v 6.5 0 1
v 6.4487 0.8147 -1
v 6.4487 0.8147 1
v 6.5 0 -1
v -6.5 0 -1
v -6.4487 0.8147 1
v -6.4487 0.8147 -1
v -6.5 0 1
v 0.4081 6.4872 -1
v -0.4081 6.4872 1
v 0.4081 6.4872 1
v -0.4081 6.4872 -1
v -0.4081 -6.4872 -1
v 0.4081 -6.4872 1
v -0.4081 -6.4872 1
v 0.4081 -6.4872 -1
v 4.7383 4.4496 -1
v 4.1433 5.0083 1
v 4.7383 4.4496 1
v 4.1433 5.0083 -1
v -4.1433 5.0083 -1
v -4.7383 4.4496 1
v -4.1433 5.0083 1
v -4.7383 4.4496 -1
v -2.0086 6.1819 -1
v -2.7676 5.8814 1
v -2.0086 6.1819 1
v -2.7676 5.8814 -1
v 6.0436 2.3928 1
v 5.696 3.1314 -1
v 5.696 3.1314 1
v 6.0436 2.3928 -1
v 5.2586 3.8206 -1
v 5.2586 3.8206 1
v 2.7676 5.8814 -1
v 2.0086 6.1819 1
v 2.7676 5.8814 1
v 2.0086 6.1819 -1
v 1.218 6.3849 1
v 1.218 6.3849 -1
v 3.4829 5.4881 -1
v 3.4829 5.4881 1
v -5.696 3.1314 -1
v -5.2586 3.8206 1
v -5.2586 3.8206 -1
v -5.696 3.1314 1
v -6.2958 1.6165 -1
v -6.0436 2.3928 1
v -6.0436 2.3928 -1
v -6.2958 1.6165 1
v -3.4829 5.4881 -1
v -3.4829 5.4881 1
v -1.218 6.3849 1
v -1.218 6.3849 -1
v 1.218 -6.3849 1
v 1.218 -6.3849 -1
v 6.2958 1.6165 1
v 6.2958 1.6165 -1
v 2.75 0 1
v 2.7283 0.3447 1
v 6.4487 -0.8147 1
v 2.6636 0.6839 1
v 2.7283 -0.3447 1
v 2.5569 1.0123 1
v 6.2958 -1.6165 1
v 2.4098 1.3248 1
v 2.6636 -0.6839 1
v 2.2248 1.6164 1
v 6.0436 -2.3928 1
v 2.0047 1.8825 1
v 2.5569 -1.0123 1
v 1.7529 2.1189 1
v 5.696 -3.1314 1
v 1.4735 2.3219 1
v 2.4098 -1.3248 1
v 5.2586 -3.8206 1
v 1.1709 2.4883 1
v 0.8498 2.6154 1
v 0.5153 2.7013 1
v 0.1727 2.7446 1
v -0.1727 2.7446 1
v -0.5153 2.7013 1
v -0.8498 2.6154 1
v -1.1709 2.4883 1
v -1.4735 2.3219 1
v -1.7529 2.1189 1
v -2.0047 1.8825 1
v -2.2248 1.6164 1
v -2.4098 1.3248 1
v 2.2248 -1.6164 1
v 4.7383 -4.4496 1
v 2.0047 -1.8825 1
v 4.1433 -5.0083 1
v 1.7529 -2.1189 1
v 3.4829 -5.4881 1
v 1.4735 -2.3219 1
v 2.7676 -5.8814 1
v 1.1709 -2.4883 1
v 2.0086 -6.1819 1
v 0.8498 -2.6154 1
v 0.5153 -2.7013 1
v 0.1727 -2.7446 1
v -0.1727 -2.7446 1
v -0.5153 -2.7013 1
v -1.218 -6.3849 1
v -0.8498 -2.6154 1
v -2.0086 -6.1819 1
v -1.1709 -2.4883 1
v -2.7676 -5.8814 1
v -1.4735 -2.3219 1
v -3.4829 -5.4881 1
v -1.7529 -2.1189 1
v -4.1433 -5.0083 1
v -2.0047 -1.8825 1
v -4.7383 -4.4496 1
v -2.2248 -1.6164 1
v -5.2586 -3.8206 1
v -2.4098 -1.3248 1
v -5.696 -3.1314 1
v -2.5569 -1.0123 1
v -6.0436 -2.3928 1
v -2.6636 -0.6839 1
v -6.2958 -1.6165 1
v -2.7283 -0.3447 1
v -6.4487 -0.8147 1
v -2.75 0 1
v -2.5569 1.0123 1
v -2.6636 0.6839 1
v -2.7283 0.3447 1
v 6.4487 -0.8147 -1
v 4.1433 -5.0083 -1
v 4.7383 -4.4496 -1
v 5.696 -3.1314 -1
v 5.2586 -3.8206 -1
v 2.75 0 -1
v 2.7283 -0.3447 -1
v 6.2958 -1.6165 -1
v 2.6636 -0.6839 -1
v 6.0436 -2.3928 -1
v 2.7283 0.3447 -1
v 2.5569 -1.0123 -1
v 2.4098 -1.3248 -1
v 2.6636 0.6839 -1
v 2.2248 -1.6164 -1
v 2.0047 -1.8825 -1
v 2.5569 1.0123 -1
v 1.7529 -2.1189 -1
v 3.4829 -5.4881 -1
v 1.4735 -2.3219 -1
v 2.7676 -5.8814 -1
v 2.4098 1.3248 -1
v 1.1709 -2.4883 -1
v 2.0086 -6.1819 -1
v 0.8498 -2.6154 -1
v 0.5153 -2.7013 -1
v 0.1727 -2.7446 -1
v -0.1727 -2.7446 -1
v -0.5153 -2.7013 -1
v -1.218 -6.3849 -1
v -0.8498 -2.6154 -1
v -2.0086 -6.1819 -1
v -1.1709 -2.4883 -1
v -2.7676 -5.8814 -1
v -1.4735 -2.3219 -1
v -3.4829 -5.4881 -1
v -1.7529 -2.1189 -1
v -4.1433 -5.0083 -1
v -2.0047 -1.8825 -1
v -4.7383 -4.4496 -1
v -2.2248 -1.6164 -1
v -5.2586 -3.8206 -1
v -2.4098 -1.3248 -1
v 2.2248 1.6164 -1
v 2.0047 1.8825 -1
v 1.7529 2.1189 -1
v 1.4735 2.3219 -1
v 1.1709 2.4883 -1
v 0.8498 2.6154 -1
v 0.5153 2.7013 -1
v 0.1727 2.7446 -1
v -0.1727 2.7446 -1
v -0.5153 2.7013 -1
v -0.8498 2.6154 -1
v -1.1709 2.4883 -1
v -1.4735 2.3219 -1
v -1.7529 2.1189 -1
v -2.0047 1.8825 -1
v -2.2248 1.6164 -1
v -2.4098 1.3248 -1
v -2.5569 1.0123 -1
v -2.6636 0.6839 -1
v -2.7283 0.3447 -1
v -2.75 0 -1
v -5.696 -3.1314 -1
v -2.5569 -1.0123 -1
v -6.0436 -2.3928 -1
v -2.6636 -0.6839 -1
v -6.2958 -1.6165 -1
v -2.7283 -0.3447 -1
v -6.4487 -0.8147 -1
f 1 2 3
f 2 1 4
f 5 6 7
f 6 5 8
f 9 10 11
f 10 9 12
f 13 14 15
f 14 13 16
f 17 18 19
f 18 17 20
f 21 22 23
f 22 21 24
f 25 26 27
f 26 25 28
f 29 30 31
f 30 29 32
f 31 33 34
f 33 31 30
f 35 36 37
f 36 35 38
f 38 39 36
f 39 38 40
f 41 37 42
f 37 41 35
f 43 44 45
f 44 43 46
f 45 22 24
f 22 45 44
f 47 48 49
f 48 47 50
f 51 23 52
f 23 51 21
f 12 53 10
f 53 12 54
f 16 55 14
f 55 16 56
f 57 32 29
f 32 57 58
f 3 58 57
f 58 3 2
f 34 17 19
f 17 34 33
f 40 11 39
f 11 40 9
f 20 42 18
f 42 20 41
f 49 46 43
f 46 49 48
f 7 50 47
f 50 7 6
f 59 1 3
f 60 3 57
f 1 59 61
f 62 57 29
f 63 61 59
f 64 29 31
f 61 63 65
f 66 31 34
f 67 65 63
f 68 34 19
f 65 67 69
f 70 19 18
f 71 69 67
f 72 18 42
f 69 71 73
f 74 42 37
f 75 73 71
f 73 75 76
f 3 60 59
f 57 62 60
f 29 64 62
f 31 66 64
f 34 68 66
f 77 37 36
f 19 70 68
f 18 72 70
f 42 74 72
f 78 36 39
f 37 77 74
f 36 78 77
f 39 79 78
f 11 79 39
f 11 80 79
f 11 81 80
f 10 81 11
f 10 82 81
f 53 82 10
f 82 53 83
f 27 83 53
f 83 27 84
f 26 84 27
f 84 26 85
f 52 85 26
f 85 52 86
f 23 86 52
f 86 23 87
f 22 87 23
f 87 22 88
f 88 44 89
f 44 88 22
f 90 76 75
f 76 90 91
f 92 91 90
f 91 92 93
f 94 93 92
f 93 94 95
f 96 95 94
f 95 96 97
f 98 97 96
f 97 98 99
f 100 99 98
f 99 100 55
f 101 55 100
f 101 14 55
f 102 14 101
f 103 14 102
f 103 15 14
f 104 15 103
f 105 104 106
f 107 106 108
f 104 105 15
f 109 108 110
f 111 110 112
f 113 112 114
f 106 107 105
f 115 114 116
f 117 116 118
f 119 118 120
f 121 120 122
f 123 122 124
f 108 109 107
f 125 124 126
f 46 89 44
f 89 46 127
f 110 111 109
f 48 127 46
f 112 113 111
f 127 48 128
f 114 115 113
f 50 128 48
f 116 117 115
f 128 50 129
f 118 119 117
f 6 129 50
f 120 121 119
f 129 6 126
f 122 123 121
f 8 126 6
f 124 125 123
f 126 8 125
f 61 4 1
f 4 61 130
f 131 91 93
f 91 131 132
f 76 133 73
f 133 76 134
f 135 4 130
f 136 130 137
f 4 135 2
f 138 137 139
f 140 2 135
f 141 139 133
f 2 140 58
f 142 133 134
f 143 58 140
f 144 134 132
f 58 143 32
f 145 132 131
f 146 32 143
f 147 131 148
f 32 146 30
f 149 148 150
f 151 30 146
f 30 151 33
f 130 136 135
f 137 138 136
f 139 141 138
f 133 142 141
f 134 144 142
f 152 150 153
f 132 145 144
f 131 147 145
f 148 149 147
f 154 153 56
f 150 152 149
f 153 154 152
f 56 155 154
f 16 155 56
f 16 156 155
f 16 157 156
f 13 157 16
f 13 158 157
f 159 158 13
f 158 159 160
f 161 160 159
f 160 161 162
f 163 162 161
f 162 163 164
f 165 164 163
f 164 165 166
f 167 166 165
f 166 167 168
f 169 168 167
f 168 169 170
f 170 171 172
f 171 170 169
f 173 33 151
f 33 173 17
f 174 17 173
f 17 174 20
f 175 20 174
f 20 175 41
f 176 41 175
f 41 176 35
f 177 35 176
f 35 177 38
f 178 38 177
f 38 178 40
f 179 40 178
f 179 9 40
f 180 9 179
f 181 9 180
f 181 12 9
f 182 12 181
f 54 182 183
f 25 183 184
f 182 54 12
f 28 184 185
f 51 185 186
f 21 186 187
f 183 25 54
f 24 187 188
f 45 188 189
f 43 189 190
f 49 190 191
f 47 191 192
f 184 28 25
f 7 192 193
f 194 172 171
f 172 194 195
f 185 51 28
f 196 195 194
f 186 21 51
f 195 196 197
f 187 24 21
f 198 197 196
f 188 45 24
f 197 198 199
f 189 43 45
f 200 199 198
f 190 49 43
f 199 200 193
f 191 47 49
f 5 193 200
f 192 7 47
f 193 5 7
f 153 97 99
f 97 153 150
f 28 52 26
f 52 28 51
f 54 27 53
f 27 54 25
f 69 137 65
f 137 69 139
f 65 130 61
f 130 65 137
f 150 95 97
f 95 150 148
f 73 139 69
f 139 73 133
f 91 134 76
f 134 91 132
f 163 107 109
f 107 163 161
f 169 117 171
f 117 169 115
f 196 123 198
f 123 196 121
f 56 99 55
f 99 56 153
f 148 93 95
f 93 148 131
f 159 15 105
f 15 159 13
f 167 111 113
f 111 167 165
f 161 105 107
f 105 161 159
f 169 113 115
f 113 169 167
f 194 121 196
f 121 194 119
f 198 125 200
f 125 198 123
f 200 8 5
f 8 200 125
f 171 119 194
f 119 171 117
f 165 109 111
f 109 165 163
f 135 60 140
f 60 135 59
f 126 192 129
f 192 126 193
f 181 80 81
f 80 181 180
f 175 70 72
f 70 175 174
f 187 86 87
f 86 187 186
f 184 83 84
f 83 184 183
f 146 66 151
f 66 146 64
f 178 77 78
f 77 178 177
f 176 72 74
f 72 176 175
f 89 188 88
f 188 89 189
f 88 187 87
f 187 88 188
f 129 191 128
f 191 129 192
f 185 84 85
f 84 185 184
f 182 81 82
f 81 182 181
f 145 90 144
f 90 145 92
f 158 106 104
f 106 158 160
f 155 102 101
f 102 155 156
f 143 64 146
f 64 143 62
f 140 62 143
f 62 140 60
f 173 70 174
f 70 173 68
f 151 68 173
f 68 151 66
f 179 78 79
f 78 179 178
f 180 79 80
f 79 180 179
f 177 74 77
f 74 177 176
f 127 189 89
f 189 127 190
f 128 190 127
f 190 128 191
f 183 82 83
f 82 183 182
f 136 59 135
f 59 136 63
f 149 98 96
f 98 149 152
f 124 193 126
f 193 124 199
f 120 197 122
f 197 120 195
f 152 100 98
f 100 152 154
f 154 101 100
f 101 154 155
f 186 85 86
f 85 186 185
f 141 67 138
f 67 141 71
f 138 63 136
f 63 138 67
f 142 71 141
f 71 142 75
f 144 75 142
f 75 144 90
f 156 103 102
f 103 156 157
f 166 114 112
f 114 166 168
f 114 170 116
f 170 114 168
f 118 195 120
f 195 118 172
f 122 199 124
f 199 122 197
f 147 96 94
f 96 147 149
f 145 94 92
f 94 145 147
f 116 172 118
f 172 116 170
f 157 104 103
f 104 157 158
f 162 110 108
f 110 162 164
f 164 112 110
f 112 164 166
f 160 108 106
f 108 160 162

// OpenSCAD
$fn = 50;


difference() {
	union() {
		translate(v = [0, 0, -1.0000000000]) {
			cylinder(h = 2, r = 6.5000000000);
		}
	}
	union() {
		translate(v = [0, 0, -100.0000000000]) {
			cylinder(h = 200, r = 2.7500000000);
		}
	}
}
